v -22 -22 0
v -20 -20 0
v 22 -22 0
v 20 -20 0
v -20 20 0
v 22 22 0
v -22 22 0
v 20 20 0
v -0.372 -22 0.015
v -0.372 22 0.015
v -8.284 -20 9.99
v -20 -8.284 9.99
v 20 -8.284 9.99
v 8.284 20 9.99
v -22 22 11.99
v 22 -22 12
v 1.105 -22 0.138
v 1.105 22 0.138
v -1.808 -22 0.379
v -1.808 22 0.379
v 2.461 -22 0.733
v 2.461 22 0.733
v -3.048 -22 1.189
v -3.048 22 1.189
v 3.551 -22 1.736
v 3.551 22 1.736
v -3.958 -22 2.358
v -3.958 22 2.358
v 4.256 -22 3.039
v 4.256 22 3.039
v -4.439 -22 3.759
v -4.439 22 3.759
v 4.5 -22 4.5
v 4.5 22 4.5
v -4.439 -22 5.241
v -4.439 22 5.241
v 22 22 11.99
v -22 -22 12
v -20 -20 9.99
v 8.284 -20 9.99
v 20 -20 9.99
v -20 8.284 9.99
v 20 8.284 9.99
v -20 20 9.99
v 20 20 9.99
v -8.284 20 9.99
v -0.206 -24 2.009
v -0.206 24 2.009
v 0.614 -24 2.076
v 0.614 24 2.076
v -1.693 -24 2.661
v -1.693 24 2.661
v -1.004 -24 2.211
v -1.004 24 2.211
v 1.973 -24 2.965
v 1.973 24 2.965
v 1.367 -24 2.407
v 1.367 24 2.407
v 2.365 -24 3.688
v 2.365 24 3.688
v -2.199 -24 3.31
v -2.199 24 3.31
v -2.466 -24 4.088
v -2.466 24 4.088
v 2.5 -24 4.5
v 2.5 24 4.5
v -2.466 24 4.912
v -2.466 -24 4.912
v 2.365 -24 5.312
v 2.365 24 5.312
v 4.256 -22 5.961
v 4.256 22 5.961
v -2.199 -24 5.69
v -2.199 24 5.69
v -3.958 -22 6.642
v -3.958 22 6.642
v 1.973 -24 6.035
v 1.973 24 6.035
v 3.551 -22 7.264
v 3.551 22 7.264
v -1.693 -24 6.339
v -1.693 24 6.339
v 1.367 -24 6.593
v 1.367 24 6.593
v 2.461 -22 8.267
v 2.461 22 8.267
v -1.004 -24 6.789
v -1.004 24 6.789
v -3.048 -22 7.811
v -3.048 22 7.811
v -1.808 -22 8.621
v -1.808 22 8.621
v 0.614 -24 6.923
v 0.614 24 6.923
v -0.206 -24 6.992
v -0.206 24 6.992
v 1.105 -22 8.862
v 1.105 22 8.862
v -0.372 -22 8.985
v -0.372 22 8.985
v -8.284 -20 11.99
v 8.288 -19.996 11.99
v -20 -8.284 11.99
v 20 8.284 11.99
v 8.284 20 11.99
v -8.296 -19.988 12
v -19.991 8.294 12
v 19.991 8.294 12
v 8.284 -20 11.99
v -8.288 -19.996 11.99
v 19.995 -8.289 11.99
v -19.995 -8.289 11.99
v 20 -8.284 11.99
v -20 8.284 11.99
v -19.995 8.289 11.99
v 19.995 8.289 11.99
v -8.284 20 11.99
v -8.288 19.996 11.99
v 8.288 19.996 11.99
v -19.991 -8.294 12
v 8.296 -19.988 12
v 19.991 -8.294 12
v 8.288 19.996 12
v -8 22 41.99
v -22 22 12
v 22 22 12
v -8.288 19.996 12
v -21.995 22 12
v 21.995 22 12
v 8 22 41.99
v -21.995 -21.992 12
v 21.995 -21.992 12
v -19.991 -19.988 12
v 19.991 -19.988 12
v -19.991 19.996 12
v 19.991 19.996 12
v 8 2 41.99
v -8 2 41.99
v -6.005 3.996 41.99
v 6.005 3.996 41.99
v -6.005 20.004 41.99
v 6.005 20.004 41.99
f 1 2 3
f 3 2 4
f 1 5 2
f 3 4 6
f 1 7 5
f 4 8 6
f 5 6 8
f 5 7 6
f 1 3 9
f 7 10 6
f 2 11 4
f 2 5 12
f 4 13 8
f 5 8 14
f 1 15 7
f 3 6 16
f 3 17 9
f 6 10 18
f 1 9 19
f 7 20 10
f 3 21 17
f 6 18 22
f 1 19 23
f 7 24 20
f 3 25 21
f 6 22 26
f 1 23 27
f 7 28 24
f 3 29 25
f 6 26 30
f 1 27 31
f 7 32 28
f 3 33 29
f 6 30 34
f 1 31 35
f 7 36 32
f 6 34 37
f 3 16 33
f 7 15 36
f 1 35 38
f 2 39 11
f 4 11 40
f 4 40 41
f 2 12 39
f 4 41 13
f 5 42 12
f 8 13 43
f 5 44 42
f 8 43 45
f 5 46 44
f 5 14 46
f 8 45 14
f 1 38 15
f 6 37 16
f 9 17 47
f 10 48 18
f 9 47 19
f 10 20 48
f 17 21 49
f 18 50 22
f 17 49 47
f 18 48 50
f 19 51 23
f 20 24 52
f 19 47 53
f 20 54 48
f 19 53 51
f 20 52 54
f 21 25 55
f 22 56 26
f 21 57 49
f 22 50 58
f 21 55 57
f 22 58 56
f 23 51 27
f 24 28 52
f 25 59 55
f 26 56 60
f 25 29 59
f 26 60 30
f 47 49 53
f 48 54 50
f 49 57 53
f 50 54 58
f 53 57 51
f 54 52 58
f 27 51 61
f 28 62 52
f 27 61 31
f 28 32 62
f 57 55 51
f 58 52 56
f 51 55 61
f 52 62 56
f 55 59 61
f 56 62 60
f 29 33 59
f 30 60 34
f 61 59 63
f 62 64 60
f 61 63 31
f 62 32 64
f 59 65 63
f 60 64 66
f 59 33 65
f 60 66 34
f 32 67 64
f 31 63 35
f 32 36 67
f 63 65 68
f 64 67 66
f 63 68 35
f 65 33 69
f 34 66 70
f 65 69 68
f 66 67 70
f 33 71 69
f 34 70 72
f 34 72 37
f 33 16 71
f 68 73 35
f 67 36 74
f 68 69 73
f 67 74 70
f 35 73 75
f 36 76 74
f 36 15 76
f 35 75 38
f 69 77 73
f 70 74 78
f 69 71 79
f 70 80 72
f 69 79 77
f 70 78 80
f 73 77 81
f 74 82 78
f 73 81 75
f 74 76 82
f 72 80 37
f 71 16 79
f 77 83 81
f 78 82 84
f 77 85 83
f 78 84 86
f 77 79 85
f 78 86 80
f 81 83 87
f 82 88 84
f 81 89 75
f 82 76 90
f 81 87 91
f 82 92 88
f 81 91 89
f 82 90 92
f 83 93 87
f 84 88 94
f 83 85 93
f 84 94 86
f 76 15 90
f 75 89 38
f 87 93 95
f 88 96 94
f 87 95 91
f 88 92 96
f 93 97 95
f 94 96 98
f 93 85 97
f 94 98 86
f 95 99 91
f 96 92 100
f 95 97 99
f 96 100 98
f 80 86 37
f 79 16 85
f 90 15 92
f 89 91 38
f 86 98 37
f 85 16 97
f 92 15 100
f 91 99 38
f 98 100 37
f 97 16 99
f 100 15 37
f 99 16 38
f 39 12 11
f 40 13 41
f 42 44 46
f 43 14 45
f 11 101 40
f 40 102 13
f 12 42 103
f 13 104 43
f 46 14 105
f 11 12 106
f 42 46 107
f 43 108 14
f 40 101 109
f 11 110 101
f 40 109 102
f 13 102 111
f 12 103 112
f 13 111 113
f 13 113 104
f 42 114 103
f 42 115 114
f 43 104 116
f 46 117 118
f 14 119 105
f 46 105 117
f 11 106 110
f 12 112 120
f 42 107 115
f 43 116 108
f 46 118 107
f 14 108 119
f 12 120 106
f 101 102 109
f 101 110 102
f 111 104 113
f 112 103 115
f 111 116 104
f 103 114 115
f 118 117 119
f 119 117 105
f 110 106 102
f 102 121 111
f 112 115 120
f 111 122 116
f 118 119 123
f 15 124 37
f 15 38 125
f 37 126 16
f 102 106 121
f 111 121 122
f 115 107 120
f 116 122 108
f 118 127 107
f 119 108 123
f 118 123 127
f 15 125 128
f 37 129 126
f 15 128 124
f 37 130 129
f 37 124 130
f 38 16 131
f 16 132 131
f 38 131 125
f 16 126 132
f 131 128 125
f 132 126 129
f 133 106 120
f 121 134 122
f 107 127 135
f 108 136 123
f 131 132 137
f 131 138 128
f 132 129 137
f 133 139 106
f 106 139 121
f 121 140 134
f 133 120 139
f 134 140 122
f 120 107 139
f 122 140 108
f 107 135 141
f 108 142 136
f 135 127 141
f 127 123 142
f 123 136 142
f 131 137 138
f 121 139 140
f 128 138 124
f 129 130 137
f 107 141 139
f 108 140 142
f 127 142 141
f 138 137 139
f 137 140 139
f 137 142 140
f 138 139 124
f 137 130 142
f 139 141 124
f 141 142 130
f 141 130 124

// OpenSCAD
include <config.scad>
use <GDMUtils.scad>
use <joiners.scad>


$fa = 2;
$fs = 1.5;


module jhead_barrel_fan_shroud()
{
	wall = 2;
	pip_diam = 5;
	pip_height = 2;
	duct_len = 30;
	w = extruder_fan_size + 2*wall;
	h = extruder_fan_thick + wall;
	heatsink_len = extruder_length/4-12;

	color("lightpink")
	union() {
		union() {
			// Fan holder
			difference() {
				upcube([w, w, h]);
				down(0.01) upcube([w-2*wall, w-2*wall, h-wall]);
				zrot(360/8/2) cylinder(d=(w-2*wall)/cos(360/8/2), h=4*h, center=false, $fn=8);
			}

			// Pips
			up(pip_diam/2+2) {
				yflip_copy() {
					fwd(w/2) {
						xrot(90) cylinder(d1=pip_diam+2*pip_height, d2=pip_diam, h=pip_height, center=false);
					}
				}
			}
		}

		// Duct
		up(h-0.01) {
			skew_xy(yang=atan2((w-jhead_heatsink_span)/2, duct_len)) {
				difference() {
					trapezoid([w, w], [jhead_heatsink_diam, jhead_heatsink_span], h=duct_len, center=false);
					down(0.01) trapezoid([w-2*wall, w-2*wall], [jhead_heatsink_diam-2*wall, jhead_heatsink_span-2*wall], h=duct_len+0.02, center=false);
				}
			}
		}
	}
	children();
}



module jhead_barrel_fan_shroud_parts() { // make me
	jhead_barrel_fan_shroud();
}



jhead_barrel_fan_shroud_parts();



// vim: noexpandtab tabstop=4 shiftwidth=4 softtabstop=4 nowrap
